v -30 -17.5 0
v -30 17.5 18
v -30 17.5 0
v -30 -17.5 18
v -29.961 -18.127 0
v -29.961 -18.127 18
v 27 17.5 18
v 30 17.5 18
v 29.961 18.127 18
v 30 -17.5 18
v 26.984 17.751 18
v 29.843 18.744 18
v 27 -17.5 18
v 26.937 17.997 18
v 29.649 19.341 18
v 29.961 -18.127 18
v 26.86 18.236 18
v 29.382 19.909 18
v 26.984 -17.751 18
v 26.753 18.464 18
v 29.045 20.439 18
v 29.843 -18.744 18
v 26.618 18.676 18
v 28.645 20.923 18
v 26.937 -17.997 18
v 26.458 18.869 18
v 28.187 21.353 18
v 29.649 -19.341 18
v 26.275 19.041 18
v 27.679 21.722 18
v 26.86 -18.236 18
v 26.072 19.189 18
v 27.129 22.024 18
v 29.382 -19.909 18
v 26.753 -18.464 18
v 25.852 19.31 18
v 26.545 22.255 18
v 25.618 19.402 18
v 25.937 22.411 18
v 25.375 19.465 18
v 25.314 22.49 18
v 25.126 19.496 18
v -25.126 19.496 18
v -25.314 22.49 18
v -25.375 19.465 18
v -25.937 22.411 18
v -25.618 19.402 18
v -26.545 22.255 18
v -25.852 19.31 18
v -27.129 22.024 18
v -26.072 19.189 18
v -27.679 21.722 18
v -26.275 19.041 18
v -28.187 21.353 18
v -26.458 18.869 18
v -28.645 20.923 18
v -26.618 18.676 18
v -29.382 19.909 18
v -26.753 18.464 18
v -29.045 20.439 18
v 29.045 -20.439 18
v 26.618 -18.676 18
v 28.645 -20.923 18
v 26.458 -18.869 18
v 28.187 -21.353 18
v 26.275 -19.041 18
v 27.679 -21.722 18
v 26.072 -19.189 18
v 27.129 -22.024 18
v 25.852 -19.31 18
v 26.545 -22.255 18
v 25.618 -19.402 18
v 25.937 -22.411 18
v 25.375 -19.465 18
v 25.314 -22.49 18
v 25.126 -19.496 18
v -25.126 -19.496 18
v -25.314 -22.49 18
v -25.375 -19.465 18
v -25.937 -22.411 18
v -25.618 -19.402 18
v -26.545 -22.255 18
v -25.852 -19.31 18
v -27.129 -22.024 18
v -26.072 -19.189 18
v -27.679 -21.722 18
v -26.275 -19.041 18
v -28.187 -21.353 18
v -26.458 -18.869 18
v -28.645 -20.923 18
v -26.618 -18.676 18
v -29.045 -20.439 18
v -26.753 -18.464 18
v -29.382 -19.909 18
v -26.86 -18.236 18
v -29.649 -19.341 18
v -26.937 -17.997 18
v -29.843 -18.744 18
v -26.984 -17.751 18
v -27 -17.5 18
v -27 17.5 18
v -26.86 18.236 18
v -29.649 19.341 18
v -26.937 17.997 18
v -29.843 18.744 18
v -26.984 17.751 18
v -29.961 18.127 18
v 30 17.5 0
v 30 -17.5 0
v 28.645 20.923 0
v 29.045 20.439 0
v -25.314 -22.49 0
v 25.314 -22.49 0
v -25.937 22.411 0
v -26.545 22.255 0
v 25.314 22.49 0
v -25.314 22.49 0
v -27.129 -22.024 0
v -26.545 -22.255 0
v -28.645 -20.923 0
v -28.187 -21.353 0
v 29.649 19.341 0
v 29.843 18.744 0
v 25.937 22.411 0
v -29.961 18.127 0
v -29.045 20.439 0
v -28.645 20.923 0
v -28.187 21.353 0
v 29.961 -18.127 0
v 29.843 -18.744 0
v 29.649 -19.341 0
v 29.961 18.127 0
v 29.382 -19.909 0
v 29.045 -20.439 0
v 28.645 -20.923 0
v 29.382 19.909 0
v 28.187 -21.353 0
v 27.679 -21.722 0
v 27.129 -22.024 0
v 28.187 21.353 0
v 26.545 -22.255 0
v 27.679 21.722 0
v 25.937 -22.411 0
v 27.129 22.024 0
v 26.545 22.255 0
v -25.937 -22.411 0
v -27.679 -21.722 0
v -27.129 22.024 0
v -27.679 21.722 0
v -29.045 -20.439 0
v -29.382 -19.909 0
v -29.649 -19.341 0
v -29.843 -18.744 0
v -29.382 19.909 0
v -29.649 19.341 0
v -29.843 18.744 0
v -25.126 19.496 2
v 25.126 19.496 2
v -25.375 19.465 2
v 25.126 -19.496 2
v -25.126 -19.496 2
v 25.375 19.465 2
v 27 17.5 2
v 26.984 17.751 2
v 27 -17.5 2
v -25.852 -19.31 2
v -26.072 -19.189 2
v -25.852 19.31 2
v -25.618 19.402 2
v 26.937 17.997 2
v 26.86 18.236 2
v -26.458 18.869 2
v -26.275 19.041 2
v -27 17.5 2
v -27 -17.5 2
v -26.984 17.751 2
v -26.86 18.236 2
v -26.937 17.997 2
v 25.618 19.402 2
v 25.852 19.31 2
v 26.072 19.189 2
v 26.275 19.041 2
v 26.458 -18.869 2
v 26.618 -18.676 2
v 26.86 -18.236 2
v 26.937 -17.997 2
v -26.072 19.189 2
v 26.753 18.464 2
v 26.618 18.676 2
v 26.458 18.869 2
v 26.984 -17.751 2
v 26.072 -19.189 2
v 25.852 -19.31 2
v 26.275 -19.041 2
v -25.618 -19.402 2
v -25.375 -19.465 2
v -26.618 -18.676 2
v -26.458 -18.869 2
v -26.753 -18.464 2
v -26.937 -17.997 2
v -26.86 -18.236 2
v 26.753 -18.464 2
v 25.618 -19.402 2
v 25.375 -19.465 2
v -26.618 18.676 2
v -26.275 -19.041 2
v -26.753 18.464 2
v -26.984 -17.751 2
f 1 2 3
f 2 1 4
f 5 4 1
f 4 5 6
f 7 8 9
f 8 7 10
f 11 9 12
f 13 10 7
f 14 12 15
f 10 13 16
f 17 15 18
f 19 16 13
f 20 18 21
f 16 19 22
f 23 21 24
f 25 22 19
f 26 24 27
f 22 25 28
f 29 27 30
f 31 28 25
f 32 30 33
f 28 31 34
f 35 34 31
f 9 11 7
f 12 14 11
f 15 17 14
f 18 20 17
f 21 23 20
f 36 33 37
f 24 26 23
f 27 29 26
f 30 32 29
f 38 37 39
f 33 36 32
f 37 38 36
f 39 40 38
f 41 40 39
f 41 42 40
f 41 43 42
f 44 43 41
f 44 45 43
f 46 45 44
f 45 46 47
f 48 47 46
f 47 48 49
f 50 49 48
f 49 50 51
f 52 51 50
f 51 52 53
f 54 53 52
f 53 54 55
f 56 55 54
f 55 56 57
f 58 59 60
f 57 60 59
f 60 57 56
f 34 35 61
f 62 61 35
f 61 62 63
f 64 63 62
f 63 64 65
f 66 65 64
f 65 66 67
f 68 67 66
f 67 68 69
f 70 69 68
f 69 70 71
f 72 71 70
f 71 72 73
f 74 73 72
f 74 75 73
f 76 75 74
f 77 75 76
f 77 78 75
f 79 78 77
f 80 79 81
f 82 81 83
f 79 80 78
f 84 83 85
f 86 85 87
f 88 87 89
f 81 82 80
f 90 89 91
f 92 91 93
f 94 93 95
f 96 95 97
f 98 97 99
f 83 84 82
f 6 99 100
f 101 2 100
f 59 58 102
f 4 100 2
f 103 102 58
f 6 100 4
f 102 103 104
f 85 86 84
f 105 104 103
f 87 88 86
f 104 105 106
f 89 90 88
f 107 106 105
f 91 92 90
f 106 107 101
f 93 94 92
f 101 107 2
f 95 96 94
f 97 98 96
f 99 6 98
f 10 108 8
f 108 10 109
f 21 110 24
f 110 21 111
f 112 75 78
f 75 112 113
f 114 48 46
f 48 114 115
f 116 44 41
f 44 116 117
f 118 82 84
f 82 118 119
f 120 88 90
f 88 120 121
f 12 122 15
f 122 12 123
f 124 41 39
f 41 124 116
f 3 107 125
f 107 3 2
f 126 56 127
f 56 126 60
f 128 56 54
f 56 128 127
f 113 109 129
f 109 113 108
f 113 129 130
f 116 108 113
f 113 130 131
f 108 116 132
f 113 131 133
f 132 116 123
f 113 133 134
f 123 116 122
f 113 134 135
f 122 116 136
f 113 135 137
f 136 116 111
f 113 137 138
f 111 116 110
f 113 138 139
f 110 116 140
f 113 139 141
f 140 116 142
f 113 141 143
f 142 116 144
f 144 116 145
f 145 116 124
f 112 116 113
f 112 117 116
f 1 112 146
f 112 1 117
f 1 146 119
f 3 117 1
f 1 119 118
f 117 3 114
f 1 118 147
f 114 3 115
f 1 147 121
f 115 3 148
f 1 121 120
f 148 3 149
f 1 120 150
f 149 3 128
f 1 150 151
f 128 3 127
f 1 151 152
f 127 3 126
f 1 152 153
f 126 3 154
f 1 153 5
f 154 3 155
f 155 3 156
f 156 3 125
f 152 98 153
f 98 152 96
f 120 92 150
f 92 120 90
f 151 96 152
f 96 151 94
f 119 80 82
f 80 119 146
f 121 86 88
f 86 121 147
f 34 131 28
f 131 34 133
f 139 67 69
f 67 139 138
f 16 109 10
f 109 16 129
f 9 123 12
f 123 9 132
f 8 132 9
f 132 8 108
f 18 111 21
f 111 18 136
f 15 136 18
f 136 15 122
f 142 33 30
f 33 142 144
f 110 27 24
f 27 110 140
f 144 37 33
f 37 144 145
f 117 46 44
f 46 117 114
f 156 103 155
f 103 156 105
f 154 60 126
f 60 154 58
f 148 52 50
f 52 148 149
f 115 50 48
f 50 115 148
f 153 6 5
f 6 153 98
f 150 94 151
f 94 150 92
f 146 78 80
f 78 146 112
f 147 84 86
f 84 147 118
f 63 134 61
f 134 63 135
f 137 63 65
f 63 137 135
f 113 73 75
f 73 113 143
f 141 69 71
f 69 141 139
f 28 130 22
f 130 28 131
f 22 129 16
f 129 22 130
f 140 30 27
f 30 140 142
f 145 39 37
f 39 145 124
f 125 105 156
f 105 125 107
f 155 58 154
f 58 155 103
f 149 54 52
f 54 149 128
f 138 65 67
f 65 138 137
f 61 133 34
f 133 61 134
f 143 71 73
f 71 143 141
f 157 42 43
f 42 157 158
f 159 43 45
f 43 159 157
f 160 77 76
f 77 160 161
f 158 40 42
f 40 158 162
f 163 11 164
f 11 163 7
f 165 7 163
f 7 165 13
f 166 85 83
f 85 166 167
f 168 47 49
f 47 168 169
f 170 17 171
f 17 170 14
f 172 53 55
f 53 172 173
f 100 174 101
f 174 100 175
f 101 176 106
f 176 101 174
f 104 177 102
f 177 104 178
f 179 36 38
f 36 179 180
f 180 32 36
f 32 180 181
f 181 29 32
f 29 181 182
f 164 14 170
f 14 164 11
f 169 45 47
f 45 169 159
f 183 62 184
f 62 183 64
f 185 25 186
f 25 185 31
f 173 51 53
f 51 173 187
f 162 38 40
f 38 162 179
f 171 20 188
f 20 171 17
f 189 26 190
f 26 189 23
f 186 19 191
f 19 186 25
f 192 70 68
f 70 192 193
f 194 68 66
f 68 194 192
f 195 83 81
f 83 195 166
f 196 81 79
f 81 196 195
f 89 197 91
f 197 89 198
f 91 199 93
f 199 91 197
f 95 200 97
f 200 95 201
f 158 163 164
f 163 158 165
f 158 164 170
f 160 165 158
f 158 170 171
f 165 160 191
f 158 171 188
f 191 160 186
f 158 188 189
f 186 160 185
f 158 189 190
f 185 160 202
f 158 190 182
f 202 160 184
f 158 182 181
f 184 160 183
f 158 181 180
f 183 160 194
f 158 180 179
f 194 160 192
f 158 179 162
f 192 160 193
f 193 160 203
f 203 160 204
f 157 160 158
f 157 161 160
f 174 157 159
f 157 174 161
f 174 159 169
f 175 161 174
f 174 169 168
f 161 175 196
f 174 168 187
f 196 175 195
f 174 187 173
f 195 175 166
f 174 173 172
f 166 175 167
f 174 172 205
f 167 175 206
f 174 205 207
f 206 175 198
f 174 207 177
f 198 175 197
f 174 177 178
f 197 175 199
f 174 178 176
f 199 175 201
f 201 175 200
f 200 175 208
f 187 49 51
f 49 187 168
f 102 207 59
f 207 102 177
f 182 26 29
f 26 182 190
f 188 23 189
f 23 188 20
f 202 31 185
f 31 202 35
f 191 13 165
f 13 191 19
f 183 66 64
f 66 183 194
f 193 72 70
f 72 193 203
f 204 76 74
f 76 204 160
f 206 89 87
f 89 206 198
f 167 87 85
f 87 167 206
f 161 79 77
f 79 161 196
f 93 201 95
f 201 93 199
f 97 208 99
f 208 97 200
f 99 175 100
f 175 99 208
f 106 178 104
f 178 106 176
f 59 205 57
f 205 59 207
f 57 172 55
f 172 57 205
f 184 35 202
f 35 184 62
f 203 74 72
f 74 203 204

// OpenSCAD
$fn = 50;


difference() {
	union() {
		hull() {
			translate(v = [-25.0000000000, 17.5000000000, 0]) {
				cylinder(h = 18, r = 5);
			}
			translate(v = [25.0000000000, 17.5000000000, 0]) {
				cylinder(h = 18, r = 5);
			}
			translate(v = [-25.0000000000, -17.5000000000, 0]) {
				cylinder(h = 18, r = 5);
			}
			translate(v = [25.0000000000, -17.5000000000, 0]) {
				cylinder(h = 18, r = 5);
			}
		}
	}
	union() {
		translate(v = [0, 0, 2]) {
			#hull() {
				translate(v = [-25.0000000000, 17.5000000000, 0]) {
					cylinder(h = 16, r = 2);
				}
				translate(v = [25.0000000000, 17.5000000000, 0]) {
					cylinder(h = 16, r = 2);
				}
				translate(v = [-25.0000000000, -17.5000000000, 0]) {
					cylinder(h = 16, r = 2);
				}
				translate(v = [25.0000000000, -17.5000000000, 0]) {
					cylinder(h = 16, r = 2);
				}
			}
		}
	}
}
